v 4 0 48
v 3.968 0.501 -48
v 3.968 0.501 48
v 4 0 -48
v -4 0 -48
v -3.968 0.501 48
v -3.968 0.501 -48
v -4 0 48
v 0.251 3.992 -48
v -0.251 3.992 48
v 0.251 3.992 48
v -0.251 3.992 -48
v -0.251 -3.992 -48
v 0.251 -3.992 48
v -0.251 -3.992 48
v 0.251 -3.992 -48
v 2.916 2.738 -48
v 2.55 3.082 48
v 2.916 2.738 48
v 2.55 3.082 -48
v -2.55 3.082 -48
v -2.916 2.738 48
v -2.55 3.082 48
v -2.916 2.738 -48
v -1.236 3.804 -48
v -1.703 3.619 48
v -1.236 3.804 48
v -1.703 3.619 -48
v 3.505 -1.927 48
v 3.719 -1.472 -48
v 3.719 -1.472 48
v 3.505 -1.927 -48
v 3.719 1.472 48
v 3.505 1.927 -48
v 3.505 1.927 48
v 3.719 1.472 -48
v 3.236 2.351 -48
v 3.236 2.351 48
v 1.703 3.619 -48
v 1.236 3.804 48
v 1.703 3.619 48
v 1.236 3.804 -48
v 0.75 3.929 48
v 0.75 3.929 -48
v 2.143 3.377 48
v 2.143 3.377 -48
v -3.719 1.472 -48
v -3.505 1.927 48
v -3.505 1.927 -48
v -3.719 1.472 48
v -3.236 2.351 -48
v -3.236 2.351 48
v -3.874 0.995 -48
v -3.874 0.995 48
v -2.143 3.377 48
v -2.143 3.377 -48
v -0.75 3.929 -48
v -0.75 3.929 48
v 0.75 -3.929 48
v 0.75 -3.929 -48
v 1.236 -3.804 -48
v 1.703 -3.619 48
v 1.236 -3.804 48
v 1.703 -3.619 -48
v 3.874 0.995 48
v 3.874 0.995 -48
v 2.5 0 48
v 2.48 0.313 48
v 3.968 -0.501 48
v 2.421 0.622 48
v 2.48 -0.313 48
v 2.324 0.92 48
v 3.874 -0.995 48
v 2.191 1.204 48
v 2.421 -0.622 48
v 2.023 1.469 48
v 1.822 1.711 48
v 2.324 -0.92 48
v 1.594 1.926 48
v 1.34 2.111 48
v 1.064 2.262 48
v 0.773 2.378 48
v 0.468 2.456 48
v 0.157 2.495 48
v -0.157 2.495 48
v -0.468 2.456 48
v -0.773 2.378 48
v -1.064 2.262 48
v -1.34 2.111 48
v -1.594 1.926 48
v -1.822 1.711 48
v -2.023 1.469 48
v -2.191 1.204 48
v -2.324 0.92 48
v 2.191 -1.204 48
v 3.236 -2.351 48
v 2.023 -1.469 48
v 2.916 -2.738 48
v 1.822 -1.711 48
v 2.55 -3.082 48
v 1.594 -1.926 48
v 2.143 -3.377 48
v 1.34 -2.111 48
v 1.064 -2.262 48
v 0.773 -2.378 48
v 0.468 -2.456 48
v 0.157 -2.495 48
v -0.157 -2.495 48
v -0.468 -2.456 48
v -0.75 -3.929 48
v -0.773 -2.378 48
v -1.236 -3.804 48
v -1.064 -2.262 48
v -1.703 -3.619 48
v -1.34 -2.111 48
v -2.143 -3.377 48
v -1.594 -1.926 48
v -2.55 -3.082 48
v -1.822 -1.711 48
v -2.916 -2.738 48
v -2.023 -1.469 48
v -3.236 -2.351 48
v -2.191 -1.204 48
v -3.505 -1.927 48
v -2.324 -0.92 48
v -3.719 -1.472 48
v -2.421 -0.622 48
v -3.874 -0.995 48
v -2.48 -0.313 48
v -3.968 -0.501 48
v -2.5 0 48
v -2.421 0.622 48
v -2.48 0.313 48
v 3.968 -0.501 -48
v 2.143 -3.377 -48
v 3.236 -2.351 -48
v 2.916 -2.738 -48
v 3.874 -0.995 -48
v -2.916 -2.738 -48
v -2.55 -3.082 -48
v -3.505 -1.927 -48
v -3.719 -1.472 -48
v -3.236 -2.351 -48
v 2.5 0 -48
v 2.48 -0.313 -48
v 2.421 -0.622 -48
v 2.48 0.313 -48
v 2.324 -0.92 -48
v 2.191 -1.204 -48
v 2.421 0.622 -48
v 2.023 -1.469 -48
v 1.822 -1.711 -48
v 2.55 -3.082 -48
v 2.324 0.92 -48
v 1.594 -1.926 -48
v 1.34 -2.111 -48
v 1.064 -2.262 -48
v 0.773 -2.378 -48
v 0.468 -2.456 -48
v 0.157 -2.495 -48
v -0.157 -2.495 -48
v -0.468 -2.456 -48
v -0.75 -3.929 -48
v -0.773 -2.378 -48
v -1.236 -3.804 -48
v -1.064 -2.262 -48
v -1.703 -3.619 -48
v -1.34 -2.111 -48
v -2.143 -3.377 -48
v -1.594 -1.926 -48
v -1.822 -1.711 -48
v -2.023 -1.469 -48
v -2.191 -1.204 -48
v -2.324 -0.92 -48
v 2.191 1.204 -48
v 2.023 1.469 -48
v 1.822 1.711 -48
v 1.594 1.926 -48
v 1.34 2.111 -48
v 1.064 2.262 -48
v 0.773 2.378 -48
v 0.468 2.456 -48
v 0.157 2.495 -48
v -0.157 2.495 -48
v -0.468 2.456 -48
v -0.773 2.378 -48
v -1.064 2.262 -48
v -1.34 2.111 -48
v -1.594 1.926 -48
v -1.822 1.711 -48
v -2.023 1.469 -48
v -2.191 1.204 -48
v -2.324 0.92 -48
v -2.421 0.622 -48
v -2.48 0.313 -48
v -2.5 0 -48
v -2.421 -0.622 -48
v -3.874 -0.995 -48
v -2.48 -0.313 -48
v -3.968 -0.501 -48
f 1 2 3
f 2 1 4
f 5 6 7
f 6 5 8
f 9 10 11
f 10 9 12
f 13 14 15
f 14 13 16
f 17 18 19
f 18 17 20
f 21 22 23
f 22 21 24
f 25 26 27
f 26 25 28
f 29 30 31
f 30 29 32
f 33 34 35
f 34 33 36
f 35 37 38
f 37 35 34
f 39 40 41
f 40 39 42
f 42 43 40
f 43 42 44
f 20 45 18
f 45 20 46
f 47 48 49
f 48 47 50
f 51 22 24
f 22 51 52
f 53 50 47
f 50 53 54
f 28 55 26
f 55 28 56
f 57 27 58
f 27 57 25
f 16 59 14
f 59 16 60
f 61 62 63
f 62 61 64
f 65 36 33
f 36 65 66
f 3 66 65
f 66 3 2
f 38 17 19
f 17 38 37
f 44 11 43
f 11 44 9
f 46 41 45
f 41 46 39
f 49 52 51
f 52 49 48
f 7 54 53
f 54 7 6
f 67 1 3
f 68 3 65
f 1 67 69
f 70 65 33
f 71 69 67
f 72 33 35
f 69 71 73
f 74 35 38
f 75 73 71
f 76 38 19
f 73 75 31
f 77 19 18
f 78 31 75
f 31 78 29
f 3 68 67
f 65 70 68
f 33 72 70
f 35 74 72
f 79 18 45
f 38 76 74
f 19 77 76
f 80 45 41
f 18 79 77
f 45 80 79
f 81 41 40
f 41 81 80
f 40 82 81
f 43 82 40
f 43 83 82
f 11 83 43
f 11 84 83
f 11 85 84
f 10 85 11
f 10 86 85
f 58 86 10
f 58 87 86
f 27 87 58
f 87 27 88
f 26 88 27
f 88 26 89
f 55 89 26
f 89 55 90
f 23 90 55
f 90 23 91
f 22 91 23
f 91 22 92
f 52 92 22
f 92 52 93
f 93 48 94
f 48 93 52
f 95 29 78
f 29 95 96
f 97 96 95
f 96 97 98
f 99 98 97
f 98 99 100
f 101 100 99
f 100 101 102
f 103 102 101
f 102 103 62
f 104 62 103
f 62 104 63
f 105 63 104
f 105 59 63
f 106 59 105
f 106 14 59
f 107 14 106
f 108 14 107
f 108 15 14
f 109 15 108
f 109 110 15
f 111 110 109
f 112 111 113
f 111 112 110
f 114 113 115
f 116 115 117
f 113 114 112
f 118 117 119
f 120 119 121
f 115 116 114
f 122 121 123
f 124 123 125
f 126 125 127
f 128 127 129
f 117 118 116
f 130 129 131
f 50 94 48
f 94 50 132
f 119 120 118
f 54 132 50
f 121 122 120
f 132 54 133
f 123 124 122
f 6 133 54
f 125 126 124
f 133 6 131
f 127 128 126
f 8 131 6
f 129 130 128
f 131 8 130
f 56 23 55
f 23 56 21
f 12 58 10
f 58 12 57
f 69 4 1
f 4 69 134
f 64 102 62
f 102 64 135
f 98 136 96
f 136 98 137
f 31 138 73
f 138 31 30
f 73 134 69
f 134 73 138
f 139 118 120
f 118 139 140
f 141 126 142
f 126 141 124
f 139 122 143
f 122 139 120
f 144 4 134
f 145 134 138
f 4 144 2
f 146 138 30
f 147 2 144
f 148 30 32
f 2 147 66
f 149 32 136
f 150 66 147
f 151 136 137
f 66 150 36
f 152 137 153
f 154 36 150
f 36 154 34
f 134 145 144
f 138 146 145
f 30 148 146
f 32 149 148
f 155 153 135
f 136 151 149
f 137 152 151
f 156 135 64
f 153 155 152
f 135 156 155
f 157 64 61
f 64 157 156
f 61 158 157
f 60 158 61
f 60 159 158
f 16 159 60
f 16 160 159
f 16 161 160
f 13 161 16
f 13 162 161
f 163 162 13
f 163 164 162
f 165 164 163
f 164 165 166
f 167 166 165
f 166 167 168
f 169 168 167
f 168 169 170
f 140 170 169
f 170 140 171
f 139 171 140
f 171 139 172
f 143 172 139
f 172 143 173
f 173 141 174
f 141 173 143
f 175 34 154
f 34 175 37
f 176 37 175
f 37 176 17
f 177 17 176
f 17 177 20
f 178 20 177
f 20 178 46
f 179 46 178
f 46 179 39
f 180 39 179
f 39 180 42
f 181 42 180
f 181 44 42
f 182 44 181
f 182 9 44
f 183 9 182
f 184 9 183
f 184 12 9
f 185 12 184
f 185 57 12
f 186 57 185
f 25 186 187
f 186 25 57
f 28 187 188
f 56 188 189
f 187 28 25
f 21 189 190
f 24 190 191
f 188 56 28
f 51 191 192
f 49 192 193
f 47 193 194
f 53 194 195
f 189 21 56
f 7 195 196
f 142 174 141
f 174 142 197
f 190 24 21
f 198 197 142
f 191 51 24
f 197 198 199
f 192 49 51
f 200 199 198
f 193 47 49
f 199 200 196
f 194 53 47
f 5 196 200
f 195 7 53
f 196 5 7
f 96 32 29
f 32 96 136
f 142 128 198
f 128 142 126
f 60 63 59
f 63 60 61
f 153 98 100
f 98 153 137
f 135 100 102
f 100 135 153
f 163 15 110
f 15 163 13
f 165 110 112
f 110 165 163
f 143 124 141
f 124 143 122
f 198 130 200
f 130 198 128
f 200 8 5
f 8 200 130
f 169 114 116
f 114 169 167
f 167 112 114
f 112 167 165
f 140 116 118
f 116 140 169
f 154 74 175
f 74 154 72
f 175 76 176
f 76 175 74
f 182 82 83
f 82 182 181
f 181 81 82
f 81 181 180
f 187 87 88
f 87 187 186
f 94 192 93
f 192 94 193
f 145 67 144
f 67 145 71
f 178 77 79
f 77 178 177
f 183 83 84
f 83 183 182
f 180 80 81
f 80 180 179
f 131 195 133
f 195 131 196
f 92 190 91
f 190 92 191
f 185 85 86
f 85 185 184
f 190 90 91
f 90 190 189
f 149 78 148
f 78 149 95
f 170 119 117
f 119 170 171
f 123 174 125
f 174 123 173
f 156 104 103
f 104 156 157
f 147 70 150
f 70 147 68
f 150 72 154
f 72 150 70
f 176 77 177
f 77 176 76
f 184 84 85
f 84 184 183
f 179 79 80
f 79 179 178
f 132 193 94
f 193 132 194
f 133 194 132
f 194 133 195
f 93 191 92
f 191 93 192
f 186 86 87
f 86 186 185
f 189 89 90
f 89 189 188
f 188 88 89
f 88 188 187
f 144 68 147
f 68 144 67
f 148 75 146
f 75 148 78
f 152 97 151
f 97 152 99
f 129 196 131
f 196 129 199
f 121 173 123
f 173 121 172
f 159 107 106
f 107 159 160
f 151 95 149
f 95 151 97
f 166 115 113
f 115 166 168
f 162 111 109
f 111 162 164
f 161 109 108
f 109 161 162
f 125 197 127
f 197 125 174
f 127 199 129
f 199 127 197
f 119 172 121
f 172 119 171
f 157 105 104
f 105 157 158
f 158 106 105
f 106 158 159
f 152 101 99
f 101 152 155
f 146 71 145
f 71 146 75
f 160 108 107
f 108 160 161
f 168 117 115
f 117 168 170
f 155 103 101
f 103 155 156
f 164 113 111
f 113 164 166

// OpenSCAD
$fn = 50;


difference() {
	union() {
		translate(v = [0, 0, -48.0000000000]) {
			cylinder(h = 96, r = 4.0000000000);
		}
	}
	union() {
		translate(v = [0, 0, -100.0000000000]) {
			cylinder(h = 200, r = 2.5000000000);
		}
	}
}
